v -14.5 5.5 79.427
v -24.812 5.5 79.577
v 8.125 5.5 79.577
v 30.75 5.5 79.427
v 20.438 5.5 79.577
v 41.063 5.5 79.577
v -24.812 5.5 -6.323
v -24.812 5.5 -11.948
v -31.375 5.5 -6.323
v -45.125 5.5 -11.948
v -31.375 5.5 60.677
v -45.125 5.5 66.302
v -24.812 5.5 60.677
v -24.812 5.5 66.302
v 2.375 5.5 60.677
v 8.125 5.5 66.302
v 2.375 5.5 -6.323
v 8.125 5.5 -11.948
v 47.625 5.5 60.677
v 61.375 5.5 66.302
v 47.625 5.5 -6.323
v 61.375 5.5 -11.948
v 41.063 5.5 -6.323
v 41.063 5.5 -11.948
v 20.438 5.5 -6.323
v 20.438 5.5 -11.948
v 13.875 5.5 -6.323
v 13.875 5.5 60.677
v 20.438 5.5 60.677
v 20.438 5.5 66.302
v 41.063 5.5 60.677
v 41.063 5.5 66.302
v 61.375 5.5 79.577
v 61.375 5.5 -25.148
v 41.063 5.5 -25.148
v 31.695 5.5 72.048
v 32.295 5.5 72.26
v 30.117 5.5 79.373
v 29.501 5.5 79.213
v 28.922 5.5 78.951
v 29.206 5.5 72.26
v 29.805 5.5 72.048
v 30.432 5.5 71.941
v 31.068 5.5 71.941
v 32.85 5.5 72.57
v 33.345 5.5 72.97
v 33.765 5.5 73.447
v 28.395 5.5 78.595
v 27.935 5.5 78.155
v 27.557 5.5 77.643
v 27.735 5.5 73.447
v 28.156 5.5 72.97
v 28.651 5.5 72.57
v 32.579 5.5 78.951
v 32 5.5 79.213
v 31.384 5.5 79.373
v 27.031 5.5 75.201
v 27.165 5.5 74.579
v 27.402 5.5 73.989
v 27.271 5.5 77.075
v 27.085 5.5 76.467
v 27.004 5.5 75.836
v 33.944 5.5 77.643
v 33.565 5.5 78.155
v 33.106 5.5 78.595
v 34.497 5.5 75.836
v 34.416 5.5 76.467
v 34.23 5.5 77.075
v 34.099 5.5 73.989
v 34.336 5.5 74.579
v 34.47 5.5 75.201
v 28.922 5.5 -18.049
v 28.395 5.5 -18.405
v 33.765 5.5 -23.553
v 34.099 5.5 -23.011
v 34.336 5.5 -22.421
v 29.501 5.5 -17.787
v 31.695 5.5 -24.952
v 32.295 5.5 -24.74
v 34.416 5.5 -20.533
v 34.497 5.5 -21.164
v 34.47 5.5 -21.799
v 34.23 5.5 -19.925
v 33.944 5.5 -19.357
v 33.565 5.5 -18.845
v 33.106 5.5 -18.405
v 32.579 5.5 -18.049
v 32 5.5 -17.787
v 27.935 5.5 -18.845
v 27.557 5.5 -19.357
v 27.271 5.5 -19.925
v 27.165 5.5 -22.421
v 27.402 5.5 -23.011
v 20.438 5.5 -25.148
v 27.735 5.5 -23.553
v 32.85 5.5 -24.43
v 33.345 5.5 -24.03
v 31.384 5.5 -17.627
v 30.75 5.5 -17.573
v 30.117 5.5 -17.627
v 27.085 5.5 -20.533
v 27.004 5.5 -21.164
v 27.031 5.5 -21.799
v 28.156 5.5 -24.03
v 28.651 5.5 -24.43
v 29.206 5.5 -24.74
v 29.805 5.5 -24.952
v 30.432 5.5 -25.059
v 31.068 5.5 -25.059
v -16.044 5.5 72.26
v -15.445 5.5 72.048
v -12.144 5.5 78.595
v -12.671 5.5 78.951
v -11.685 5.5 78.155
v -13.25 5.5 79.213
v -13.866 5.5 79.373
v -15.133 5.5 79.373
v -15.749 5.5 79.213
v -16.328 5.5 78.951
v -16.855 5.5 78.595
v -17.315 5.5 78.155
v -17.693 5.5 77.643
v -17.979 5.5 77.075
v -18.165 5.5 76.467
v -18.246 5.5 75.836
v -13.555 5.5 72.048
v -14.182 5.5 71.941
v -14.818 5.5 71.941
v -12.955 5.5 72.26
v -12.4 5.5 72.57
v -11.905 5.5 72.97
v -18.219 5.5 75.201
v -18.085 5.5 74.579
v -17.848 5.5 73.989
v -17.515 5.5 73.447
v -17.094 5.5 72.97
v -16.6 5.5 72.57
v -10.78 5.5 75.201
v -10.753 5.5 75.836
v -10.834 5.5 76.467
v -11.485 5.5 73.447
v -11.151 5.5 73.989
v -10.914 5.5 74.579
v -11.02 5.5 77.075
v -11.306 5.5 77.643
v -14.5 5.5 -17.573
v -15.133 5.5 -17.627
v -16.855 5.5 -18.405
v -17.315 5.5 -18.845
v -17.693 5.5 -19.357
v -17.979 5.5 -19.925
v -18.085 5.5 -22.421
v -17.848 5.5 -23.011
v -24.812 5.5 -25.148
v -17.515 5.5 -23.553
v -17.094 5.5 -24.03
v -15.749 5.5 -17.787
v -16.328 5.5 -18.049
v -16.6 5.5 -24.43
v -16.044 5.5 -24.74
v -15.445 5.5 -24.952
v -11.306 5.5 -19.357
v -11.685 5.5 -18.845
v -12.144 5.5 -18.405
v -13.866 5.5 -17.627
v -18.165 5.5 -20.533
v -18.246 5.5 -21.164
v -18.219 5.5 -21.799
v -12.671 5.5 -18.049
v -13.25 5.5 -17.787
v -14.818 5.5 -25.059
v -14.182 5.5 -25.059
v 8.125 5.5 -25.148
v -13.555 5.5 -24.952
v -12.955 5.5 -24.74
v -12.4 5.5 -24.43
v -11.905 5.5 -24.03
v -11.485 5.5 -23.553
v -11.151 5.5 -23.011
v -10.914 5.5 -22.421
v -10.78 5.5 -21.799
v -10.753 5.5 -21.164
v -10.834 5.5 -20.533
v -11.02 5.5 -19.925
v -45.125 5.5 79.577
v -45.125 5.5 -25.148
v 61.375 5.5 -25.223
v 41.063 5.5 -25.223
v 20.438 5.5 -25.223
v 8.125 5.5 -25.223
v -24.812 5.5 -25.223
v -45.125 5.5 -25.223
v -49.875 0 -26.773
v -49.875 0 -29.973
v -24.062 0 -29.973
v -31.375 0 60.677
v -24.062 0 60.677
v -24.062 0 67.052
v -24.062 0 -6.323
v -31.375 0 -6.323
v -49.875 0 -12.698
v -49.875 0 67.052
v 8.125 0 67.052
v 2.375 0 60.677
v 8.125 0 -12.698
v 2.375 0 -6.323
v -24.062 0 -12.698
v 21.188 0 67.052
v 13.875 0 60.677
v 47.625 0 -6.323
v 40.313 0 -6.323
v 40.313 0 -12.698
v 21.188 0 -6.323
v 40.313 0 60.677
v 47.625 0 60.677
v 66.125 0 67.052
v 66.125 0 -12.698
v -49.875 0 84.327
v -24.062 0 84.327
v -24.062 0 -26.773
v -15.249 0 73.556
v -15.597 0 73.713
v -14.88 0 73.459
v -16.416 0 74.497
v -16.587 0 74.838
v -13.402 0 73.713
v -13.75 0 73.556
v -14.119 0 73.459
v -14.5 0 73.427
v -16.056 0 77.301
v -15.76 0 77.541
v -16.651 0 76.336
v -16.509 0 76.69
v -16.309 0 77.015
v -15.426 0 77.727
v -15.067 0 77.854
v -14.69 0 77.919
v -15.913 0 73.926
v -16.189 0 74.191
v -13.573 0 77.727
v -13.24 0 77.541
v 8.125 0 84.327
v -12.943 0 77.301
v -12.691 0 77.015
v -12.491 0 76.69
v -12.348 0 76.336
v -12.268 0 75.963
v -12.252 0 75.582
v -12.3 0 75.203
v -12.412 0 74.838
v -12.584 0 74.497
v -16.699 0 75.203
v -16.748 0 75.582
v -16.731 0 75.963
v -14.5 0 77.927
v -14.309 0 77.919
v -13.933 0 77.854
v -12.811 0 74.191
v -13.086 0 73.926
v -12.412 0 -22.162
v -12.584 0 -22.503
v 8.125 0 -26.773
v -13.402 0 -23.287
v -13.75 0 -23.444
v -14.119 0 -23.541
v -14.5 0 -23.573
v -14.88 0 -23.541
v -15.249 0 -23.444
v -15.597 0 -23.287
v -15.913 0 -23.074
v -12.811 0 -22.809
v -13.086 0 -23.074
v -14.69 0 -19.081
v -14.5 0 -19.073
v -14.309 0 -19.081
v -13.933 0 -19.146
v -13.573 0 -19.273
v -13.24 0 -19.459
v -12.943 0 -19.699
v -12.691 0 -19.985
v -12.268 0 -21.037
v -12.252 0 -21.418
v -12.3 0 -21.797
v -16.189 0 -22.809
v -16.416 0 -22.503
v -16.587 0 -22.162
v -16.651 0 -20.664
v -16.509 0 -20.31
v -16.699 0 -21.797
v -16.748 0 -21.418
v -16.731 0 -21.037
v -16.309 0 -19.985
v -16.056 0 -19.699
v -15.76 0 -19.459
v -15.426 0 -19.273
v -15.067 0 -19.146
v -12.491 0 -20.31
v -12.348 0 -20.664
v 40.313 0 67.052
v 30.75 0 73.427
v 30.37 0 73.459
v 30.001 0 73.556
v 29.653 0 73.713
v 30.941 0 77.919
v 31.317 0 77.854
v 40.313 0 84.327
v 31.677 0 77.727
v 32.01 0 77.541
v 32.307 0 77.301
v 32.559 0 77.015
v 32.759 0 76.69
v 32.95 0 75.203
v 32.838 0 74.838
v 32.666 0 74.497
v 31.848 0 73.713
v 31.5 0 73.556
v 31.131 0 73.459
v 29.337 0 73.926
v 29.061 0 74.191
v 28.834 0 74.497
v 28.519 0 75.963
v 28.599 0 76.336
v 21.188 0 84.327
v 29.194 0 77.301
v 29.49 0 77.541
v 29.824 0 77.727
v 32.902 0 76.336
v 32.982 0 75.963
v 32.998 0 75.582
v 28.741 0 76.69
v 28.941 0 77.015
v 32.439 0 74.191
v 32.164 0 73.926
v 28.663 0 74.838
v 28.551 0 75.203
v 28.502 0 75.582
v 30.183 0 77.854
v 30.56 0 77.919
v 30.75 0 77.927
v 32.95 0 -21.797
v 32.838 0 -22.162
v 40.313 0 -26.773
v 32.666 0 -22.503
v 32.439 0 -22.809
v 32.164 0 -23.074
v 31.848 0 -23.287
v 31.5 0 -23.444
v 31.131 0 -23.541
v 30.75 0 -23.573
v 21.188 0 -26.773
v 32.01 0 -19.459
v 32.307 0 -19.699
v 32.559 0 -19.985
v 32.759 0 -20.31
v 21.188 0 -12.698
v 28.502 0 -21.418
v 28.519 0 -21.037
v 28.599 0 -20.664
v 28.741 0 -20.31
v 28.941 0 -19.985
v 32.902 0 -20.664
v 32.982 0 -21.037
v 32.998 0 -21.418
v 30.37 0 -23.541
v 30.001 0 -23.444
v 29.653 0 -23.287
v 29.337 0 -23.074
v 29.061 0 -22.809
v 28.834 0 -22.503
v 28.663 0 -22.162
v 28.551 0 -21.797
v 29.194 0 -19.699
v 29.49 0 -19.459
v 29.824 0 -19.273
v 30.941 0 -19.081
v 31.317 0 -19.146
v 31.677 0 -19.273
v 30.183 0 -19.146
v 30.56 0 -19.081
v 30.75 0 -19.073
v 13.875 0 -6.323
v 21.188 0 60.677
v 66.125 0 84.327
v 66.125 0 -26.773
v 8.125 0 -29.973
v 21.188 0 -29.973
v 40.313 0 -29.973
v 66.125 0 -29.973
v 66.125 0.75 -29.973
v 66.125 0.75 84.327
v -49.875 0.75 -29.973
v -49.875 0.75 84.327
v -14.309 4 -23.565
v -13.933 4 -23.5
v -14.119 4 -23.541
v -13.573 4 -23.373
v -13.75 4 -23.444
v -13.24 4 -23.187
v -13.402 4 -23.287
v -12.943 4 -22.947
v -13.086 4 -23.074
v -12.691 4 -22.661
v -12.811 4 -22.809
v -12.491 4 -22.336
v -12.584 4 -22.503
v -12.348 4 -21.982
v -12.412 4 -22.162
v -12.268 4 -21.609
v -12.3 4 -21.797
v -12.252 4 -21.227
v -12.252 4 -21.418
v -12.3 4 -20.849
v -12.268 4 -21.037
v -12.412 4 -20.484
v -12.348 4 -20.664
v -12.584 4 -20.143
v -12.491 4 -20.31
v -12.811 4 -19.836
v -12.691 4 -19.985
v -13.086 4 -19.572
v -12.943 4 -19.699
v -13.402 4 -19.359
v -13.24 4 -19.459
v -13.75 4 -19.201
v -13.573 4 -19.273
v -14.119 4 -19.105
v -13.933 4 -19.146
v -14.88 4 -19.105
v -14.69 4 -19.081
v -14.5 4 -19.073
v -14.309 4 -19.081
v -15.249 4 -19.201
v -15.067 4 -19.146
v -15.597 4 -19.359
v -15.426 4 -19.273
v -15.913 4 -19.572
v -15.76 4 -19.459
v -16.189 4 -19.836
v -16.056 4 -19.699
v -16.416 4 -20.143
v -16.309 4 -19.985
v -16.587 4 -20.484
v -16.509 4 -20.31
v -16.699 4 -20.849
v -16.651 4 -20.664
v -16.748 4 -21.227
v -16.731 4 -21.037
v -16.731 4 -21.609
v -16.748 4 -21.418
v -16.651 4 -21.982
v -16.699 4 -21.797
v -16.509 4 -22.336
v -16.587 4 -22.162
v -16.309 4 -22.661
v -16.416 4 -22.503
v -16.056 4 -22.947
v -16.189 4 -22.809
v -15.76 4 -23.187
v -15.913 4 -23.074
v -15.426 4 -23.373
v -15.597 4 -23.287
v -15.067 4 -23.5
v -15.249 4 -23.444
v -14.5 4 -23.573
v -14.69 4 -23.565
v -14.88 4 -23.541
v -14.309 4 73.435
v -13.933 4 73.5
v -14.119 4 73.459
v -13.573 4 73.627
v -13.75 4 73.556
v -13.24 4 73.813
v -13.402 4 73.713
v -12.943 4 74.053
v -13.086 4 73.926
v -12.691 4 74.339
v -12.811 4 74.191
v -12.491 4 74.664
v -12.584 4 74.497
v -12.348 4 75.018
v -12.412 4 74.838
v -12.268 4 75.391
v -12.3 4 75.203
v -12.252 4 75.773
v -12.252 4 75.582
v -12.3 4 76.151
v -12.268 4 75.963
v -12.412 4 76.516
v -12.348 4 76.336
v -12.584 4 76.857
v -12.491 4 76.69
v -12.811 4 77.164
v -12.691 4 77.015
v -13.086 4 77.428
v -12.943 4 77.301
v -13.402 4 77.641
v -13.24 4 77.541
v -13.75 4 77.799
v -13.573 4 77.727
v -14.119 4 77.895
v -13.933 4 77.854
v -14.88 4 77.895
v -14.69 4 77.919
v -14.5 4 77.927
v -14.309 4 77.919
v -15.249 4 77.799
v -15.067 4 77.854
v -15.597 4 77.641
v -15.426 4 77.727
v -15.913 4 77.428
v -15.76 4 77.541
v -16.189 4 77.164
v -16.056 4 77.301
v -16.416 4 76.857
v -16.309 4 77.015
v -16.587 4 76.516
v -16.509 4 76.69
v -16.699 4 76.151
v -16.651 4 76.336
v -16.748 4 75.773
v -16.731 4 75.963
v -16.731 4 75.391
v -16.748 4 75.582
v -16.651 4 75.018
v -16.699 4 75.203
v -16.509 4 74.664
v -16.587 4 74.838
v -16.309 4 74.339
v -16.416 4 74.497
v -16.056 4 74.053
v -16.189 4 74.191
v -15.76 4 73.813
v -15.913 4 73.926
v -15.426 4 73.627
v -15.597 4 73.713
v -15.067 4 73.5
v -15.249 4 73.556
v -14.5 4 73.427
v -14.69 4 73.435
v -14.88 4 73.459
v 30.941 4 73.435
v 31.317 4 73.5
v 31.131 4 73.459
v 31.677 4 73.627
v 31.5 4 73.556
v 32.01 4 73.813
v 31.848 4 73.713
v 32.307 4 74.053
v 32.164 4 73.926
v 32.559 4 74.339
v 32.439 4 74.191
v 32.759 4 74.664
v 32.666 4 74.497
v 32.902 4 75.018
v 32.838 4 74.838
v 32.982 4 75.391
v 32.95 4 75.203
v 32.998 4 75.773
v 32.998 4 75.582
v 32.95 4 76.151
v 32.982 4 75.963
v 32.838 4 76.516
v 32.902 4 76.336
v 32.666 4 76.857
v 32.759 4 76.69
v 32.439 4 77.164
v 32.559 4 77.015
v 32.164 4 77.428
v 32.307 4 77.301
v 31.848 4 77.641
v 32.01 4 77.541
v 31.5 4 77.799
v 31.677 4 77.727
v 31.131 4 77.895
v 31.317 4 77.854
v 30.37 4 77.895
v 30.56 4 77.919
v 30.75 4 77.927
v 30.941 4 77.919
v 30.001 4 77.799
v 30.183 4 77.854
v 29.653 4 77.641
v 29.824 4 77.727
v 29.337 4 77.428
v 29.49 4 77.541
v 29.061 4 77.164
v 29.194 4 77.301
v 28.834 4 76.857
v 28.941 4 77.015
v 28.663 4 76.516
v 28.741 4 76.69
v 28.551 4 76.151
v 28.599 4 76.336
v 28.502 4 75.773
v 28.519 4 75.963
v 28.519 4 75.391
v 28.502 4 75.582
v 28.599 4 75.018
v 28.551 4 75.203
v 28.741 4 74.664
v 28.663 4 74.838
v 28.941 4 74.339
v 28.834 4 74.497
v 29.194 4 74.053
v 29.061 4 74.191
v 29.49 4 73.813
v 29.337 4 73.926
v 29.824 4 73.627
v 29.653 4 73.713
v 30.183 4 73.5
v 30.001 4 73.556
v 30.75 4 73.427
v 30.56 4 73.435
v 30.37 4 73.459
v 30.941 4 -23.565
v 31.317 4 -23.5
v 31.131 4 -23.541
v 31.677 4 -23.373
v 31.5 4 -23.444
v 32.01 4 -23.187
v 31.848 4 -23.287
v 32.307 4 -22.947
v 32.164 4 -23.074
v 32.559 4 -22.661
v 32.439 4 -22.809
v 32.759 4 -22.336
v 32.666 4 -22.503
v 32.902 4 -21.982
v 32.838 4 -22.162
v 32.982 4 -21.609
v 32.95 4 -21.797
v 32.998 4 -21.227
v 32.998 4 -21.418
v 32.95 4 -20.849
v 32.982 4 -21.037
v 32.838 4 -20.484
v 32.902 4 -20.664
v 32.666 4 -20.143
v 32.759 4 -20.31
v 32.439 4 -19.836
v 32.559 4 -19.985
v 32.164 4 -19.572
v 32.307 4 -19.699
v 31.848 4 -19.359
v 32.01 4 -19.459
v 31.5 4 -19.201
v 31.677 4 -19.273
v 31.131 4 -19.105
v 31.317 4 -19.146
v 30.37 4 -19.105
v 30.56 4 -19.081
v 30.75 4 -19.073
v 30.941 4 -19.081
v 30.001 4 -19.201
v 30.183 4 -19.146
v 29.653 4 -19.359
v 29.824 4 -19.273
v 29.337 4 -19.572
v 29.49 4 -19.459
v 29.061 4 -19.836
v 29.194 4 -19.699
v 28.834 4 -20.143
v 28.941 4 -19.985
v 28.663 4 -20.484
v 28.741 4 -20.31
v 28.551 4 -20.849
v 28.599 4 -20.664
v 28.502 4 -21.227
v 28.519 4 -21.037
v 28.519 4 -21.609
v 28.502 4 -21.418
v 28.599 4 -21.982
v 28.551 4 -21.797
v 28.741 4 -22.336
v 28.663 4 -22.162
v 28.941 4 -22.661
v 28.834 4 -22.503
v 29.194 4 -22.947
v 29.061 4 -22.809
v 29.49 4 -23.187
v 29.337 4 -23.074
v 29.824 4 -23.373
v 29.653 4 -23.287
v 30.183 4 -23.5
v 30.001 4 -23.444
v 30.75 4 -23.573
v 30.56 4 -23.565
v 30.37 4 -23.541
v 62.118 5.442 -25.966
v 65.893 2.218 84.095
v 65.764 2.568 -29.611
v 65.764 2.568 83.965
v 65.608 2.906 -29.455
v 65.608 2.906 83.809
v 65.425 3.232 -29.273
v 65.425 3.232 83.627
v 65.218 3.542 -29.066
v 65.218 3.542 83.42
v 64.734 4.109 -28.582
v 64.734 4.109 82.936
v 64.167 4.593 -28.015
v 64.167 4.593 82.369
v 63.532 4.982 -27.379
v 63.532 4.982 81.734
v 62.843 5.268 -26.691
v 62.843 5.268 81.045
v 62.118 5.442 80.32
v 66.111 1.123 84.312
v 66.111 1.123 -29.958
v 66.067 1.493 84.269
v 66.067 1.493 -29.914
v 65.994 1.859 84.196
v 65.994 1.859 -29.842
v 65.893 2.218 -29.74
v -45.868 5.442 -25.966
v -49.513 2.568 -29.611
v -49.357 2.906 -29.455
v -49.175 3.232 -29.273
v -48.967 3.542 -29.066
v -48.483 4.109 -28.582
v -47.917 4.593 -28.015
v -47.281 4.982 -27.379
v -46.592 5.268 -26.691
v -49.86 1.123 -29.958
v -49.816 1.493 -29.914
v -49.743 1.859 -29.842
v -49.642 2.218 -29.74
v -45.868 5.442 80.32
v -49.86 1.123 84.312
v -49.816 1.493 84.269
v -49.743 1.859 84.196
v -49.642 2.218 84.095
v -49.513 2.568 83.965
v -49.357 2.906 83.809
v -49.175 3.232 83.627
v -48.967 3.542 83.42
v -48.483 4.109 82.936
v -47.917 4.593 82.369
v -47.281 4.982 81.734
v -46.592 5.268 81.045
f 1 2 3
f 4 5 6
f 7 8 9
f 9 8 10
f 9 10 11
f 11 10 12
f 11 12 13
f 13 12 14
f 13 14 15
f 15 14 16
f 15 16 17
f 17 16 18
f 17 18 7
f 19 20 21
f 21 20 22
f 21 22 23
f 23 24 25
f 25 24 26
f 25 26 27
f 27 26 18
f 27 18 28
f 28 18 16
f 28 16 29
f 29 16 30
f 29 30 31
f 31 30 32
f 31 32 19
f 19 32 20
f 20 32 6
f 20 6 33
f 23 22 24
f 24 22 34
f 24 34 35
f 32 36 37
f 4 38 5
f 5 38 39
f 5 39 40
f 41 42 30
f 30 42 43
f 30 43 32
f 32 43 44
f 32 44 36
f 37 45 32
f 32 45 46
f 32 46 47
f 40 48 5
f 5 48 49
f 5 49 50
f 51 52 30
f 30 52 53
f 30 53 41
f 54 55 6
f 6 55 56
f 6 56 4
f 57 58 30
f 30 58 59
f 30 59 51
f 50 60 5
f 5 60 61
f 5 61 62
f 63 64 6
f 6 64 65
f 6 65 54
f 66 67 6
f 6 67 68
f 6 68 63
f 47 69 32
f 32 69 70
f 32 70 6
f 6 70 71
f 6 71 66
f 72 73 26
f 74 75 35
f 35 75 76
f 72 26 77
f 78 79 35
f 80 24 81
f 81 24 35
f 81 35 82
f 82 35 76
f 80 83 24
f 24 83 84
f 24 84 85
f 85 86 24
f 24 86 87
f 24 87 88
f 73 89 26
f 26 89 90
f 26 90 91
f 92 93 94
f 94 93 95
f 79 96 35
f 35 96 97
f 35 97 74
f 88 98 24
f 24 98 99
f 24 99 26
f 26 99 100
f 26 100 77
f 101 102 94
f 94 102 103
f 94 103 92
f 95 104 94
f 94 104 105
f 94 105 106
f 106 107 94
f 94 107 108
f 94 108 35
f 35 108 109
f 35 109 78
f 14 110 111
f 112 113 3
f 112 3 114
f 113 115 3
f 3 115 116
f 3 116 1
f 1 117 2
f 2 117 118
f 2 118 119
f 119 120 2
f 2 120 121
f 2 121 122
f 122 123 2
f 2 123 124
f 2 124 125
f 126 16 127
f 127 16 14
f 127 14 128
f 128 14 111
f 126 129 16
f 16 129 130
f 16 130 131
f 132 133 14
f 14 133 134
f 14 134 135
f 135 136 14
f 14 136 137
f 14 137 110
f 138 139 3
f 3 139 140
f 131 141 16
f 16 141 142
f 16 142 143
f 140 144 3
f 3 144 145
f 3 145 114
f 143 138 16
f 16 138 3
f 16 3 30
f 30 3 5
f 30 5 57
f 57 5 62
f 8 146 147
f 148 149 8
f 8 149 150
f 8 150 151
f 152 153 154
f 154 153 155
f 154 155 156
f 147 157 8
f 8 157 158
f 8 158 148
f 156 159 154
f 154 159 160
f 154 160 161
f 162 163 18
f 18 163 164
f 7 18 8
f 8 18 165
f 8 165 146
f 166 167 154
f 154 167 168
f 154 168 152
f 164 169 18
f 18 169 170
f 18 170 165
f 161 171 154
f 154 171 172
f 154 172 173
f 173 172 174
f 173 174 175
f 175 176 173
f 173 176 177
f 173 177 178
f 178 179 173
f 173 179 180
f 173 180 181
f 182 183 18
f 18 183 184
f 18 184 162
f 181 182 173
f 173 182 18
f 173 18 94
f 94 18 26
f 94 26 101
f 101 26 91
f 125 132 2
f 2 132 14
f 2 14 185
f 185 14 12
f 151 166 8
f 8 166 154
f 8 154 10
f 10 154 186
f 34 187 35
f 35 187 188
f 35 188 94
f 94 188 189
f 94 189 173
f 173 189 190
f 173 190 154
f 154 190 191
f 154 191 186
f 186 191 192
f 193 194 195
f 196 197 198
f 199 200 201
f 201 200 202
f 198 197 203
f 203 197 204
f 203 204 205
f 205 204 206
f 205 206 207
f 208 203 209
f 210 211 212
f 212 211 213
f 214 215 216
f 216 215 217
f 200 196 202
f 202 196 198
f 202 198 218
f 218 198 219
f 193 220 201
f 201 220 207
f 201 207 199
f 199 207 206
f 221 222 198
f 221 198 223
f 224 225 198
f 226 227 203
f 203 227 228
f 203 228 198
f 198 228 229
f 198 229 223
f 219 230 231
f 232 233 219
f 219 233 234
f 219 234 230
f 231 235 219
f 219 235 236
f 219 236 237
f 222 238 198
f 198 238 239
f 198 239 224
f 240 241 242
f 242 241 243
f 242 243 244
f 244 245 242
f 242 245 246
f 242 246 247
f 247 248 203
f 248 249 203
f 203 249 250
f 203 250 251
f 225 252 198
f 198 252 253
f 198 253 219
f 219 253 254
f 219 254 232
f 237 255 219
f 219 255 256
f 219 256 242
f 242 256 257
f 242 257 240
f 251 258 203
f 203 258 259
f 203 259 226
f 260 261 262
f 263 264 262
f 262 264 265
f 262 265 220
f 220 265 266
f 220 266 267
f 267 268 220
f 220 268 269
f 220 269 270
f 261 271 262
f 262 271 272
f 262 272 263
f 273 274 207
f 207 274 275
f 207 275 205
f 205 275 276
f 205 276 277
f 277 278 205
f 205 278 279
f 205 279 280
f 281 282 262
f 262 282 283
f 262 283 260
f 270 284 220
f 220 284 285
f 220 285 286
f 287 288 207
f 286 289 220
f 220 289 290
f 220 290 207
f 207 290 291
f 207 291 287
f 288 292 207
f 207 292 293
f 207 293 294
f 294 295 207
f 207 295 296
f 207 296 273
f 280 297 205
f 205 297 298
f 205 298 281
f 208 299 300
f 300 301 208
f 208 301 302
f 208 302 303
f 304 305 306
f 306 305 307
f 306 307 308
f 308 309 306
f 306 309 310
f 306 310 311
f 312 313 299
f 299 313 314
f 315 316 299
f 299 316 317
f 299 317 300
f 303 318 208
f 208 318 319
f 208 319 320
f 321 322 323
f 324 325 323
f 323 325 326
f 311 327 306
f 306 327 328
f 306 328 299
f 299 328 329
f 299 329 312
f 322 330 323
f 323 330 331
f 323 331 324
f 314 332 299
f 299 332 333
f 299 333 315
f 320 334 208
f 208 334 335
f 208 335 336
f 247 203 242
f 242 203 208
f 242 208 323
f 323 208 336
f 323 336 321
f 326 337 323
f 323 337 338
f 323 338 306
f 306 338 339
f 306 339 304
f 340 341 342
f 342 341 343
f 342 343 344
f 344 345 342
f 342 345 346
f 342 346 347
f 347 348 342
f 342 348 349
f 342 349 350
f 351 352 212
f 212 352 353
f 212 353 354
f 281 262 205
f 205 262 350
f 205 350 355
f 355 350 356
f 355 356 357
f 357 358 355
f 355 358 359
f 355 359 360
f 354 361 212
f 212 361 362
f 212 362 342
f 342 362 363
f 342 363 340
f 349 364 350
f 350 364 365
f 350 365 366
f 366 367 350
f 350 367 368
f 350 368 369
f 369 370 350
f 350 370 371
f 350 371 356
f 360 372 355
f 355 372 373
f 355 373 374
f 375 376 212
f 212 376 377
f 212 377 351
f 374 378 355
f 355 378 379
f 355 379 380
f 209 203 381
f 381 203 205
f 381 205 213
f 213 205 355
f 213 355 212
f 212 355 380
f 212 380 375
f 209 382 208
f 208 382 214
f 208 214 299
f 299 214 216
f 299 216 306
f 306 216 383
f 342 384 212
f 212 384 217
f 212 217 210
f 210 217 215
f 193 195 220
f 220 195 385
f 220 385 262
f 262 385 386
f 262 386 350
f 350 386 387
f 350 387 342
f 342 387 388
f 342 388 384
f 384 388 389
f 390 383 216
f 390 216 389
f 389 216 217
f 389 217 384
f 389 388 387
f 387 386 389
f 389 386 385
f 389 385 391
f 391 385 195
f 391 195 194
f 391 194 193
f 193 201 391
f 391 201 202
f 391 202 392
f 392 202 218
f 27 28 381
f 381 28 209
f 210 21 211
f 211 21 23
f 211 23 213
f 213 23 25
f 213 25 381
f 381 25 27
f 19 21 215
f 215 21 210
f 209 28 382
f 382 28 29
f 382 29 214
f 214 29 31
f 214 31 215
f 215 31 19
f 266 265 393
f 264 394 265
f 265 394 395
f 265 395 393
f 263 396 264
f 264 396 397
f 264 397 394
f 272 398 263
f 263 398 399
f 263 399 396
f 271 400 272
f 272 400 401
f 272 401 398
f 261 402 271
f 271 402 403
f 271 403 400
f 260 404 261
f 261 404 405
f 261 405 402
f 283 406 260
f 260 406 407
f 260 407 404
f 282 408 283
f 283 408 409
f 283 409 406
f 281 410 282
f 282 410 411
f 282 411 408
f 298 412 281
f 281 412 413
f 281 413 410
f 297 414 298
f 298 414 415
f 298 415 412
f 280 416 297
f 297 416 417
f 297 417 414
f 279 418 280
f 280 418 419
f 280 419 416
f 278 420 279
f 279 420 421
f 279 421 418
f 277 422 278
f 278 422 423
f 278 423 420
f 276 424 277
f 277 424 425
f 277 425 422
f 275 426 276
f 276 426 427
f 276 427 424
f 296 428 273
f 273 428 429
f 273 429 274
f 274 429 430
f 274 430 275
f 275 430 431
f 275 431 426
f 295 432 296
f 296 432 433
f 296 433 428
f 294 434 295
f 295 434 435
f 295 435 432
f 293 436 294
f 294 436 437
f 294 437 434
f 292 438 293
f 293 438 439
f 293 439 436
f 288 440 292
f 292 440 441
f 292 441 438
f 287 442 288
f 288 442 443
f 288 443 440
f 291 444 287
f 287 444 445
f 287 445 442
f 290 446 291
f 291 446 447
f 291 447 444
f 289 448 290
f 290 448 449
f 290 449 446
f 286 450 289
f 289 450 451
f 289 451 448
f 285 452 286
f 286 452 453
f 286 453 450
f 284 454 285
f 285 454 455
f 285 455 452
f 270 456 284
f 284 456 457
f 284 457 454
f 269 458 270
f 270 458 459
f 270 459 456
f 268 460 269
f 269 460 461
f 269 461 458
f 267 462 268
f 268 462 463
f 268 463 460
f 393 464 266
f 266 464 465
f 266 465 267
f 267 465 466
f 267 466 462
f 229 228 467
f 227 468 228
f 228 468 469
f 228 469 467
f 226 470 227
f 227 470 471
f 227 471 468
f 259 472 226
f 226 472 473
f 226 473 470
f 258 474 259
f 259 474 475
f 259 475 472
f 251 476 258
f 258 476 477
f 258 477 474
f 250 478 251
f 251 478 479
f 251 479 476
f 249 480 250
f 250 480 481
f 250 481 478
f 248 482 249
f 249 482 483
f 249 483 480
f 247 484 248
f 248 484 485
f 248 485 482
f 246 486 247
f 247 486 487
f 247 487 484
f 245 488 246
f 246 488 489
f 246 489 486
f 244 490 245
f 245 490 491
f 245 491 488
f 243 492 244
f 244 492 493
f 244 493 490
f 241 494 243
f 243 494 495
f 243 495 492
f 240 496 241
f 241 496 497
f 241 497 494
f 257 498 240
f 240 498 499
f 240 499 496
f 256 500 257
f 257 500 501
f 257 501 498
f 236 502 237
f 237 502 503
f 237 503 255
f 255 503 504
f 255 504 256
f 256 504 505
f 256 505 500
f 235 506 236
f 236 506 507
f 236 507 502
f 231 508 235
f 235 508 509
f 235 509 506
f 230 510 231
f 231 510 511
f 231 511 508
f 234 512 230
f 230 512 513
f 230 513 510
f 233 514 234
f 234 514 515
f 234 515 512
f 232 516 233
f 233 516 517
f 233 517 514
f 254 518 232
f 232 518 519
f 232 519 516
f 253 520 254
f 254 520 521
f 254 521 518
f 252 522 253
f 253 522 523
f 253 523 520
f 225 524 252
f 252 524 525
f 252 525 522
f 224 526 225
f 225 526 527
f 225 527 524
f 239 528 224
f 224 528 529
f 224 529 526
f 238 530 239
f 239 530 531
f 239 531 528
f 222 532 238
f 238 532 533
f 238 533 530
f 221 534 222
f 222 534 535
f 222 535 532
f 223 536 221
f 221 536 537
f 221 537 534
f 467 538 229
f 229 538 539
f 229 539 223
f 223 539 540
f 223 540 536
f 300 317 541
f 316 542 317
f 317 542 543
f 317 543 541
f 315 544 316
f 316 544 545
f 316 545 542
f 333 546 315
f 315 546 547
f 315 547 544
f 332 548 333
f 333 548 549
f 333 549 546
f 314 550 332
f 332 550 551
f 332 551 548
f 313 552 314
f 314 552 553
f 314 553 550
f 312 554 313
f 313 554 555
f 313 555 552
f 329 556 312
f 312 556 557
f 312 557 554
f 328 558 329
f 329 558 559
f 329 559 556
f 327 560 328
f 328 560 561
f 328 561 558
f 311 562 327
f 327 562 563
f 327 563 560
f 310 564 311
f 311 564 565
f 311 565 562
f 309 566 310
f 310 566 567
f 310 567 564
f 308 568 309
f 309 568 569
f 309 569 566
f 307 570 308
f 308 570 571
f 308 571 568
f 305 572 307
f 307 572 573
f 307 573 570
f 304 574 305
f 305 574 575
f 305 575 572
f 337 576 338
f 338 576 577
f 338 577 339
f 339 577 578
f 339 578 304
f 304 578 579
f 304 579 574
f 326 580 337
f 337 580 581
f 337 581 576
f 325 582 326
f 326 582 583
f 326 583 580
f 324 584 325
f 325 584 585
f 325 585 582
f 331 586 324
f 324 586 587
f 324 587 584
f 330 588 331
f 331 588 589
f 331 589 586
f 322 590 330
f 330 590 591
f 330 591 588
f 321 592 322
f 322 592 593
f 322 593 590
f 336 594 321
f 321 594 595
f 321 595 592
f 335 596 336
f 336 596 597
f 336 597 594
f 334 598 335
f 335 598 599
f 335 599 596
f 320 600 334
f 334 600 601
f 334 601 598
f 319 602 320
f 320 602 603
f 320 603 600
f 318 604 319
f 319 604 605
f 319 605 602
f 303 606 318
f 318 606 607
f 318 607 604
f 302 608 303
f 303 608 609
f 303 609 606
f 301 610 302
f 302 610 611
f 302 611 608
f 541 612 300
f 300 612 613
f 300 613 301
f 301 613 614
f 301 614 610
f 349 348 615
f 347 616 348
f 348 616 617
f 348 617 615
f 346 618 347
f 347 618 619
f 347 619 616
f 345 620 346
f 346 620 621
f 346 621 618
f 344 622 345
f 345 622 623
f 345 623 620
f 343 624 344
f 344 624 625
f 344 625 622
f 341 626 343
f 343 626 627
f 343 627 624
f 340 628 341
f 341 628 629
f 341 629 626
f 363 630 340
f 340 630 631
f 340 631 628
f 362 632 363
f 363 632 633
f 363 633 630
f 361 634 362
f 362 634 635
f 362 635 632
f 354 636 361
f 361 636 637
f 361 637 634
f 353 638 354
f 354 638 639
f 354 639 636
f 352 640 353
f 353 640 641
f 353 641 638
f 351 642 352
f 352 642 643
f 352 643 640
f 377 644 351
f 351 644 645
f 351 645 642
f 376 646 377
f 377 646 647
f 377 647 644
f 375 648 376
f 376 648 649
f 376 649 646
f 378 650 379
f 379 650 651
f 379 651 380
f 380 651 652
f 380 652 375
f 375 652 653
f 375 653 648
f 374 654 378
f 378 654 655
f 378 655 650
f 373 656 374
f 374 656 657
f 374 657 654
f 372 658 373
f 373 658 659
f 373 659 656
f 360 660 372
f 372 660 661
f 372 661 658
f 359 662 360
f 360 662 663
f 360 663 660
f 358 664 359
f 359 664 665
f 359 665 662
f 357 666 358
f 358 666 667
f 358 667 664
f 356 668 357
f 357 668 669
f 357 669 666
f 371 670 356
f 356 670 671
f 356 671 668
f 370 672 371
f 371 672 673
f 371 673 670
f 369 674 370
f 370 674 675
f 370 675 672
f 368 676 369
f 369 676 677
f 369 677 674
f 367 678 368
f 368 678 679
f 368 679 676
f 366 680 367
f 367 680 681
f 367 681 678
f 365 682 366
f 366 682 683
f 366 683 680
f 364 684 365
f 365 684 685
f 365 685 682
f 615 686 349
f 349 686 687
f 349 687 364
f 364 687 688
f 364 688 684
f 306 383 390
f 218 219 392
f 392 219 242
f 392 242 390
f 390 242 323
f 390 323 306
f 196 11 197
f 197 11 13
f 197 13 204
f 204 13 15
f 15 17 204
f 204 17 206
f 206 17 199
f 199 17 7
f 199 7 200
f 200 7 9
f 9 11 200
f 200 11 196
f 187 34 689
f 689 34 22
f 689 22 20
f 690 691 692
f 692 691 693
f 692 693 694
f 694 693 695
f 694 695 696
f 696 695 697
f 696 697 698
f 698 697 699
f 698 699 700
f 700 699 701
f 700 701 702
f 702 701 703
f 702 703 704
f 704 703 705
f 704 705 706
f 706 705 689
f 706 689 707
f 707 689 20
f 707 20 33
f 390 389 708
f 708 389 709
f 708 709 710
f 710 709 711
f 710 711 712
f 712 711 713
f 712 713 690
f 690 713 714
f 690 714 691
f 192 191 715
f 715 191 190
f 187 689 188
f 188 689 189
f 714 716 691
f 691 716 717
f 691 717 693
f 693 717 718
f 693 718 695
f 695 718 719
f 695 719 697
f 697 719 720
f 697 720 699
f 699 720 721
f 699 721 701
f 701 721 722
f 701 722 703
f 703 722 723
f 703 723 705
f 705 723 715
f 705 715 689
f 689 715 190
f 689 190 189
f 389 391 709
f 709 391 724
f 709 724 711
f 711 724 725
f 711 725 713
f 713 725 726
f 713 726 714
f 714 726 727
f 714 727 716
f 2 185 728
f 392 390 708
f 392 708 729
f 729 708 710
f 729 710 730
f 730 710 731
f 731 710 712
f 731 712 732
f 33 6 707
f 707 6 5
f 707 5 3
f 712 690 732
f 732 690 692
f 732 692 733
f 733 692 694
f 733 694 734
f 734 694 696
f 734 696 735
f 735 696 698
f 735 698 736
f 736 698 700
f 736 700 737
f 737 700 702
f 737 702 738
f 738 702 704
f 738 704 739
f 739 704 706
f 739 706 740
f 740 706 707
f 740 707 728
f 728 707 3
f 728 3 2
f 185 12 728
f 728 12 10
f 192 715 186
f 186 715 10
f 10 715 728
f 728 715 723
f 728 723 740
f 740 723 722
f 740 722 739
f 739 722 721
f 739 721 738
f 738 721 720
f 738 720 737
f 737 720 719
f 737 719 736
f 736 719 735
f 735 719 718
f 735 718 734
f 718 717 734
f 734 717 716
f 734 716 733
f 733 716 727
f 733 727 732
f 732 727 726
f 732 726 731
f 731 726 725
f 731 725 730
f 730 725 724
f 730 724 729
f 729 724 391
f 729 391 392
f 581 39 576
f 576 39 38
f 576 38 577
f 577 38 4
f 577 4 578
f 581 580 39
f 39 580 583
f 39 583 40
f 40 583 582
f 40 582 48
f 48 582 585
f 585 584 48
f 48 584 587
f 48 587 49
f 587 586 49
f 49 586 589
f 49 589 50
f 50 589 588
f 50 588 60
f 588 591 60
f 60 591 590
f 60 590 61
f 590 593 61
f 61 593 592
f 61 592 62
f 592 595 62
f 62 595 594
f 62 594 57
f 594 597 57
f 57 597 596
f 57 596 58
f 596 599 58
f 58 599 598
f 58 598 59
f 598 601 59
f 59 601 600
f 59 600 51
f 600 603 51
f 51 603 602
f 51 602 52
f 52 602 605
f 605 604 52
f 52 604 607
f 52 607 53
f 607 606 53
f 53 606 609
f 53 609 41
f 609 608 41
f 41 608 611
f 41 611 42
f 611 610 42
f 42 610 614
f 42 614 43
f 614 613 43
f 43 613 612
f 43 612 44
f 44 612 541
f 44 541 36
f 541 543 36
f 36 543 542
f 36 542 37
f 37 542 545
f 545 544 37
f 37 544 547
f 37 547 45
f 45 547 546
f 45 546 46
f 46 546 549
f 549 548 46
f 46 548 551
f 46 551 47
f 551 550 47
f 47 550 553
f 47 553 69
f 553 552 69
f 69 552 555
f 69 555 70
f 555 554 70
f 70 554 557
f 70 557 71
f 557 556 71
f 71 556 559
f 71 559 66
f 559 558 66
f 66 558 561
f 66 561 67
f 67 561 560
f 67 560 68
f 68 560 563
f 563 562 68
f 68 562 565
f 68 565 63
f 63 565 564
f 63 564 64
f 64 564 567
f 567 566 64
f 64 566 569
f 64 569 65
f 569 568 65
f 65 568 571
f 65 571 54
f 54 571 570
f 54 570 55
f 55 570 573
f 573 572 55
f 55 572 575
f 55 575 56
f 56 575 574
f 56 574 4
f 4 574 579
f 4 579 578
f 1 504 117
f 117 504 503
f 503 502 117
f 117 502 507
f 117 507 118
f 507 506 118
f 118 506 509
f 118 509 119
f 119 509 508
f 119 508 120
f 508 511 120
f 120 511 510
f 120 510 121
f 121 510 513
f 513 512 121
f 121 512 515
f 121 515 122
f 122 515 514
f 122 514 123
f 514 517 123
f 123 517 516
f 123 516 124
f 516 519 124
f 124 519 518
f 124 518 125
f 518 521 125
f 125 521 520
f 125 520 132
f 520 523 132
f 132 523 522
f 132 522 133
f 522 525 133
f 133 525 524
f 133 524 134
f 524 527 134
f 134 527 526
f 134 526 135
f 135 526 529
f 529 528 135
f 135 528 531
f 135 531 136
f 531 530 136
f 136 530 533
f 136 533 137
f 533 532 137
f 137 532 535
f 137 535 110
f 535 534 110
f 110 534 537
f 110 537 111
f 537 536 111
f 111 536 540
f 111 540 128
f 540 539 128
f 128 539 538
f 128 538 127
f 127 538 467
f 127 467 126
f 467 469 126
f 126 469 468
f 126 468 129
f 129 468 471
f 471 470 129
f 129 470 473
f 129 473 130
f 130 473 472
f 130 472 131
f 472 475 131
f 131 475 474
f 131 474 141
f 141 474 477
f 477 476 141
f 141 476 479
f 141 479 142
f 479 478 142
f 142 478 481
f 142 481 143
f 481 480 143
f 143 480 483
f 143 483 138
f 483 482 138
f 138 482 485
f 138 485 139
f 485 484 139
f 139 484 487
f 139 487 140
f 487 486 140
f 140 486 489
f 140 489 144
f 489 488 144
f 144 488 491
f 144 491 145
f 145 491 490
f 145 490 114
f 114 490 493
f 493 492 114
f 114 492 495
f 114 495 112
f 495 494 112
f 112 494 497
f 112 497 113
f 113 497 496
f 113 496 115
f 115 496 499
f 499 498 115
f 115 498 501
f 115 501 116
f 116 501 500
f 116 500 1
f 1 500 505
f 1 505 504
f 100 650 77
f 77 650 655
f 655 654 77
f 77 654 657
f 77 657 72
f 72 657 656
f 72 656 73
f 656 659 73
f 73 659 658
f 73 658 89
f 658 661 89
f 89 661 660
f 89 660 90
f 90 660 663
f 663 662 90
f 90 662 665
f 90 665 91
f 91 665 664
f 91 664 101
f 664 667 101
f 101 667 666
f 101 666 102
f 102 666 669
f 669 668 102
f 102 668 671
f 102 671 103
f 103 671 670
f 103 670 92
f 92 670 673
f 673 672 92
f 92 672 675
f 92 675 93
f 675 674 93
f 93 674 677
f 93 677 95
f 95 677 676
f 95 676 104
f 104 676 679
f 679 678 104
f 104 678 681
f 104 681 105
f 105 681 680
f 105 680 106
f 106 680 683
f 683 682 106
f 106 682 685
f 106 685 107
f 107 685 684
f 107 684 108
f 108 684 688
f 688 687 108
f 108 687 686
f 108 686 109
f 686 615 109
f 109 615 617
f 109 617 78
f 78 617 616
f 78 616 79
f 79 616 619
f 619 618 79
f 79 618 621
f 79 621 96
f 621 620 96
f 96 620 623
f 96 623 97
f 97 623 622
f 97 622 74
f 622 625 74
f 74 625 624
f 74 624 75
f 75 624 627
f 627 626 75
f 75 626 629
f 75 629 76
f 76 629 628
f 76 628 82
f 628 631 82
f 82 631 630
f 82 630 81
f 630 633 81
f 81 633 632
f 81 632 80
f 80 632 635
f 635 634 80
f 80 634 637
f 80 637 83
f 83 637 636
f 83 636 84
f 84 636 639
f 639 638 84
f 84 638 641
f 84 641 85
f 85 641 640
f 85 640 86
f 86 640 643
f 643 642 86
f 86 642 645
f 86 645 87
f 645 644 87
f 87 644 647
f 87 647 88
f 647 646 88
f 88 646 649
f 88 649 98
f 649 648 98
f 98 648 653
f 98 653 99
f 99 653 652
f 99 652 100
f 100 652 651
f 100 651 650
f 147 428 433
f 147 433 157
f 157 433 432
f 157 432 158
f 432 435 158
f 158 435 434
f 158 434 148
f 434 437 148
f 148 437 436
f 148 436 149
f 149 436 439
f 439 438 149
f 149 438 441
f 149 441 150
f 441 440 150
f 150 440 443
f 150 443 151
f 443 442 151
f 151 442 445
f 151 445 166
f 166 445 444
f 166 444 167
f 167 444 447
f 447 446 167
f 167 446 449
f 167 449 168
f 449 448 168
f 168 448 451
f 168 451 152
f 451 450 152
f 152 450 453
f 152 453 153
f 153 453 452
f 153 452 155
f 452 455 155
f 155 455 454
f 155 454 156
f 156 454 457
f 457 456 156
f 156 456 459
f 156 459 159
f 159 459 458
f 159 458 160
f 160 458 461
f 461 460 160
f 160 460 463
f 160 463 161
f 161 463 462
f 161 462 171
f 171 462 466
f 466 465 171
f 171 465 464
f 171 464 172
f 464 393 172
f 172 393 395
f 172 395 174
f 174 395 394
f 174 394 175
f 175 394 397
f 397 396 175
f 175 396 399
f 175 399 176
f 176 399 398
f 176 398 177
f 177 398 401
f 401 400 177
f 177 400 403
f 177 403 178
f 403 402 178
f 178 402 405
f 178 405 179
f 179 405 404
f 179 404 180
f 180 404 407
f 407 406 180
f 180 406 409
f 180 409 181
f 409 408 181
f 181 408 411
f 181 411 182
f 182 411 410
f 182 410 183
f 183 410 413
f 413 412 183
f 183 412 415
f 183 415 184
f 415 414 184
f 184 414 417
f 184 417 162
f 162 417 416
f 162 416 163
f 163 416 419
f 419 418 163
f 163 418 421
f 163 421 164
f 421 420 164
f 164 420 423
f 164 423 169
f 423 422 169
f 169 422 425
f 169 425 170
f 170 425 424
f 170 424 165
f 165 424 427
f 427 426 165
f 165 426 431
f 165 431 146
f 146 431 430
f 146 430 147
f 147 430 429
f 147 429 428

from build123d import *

# Parameters (mm, degrees)
SKETCH1_W           = 116
SKETCH1_H           = 114.3
SKETCH1_R           = 2.25
SKETCH1_W_2         = 33.75
SKETCH1_H_2         = 67
BOSS_EXTRUDE1_DEPTH = 5.5
FILLET1_R           = 4.75
CHAMFER1_SIZE       = 1.5


with BuildPart() as part:
    # Sketch1 → Boss-Extrude1 (new body)
    with BuildSketch(Plane(origin=(0, 0, 0), x_dir=(1, 0, 0), z_dir=(0, 1, 0))):
        with Locations((8.125405268, -27.177064496)):
            Rectangle(SKETCH1_W, SKETCH1_H)
        with Locations((-14.499594732, 21.322935504)):
            Circle(SKETCH1_R, mode=Mode.SUBTRACT)
        with Locations((-14.499594732, -75.677064496)):
            Circle(SKETCH1_R, mode=Mode.SUBTRACT)
        with Locations((30.750405268, -75.677064496)):
            Circle(SKETCH1_R, mode=Mode.SUBTRACT)
        with Locations((30.750405268, 21.322935504)):
            Circle(SKETCH1_R, mode=Mode.SUBTRACT)
        with Locations((-14.499594732, -27.177064496)):
            Rectangle(SKETCH1_W_2, SKETCH1_H_2, mode=Mode.SUBTRACT)
        with Locations((30.750405268, -27.177064496)):
            Rectangle(SKETCH1_W_2, SKETCH1_H_2, mode=Mode.SUBTRACT)
    extrude(amount=BOSS_EXTRUDE1_DEPTH)

    # Fillet1
    fillet1_edges = [part.edges().sort_by_distance(p)[0] for p in [
        (66.125405268, 5.5, 27.177064496),
        (8.125405268, 5.5, -29.972935504),
        (-49.874594732, 5.5, 27.177064496),
        (8.125405268, 5.5, 84.327064496),
    ]]
    fillet(fillet1_edges, radius=FILLET1_R)

    # Chamfer1
    chamfer1_edges = [part.edges().sort_by_distance(p)[0] for p in [
        (28.500405268, 5.5, 75.677064496),
        (-16.749594732, 5.5, 75.677064496),
        (-16.749594732, 5.5, -21.322935504),
        (28.500405268, 5.5, -21.322935504),
    ]]
    chamfer(chamfer1_edges, length=CHAMFER1_SIZE)


solid = part.part
